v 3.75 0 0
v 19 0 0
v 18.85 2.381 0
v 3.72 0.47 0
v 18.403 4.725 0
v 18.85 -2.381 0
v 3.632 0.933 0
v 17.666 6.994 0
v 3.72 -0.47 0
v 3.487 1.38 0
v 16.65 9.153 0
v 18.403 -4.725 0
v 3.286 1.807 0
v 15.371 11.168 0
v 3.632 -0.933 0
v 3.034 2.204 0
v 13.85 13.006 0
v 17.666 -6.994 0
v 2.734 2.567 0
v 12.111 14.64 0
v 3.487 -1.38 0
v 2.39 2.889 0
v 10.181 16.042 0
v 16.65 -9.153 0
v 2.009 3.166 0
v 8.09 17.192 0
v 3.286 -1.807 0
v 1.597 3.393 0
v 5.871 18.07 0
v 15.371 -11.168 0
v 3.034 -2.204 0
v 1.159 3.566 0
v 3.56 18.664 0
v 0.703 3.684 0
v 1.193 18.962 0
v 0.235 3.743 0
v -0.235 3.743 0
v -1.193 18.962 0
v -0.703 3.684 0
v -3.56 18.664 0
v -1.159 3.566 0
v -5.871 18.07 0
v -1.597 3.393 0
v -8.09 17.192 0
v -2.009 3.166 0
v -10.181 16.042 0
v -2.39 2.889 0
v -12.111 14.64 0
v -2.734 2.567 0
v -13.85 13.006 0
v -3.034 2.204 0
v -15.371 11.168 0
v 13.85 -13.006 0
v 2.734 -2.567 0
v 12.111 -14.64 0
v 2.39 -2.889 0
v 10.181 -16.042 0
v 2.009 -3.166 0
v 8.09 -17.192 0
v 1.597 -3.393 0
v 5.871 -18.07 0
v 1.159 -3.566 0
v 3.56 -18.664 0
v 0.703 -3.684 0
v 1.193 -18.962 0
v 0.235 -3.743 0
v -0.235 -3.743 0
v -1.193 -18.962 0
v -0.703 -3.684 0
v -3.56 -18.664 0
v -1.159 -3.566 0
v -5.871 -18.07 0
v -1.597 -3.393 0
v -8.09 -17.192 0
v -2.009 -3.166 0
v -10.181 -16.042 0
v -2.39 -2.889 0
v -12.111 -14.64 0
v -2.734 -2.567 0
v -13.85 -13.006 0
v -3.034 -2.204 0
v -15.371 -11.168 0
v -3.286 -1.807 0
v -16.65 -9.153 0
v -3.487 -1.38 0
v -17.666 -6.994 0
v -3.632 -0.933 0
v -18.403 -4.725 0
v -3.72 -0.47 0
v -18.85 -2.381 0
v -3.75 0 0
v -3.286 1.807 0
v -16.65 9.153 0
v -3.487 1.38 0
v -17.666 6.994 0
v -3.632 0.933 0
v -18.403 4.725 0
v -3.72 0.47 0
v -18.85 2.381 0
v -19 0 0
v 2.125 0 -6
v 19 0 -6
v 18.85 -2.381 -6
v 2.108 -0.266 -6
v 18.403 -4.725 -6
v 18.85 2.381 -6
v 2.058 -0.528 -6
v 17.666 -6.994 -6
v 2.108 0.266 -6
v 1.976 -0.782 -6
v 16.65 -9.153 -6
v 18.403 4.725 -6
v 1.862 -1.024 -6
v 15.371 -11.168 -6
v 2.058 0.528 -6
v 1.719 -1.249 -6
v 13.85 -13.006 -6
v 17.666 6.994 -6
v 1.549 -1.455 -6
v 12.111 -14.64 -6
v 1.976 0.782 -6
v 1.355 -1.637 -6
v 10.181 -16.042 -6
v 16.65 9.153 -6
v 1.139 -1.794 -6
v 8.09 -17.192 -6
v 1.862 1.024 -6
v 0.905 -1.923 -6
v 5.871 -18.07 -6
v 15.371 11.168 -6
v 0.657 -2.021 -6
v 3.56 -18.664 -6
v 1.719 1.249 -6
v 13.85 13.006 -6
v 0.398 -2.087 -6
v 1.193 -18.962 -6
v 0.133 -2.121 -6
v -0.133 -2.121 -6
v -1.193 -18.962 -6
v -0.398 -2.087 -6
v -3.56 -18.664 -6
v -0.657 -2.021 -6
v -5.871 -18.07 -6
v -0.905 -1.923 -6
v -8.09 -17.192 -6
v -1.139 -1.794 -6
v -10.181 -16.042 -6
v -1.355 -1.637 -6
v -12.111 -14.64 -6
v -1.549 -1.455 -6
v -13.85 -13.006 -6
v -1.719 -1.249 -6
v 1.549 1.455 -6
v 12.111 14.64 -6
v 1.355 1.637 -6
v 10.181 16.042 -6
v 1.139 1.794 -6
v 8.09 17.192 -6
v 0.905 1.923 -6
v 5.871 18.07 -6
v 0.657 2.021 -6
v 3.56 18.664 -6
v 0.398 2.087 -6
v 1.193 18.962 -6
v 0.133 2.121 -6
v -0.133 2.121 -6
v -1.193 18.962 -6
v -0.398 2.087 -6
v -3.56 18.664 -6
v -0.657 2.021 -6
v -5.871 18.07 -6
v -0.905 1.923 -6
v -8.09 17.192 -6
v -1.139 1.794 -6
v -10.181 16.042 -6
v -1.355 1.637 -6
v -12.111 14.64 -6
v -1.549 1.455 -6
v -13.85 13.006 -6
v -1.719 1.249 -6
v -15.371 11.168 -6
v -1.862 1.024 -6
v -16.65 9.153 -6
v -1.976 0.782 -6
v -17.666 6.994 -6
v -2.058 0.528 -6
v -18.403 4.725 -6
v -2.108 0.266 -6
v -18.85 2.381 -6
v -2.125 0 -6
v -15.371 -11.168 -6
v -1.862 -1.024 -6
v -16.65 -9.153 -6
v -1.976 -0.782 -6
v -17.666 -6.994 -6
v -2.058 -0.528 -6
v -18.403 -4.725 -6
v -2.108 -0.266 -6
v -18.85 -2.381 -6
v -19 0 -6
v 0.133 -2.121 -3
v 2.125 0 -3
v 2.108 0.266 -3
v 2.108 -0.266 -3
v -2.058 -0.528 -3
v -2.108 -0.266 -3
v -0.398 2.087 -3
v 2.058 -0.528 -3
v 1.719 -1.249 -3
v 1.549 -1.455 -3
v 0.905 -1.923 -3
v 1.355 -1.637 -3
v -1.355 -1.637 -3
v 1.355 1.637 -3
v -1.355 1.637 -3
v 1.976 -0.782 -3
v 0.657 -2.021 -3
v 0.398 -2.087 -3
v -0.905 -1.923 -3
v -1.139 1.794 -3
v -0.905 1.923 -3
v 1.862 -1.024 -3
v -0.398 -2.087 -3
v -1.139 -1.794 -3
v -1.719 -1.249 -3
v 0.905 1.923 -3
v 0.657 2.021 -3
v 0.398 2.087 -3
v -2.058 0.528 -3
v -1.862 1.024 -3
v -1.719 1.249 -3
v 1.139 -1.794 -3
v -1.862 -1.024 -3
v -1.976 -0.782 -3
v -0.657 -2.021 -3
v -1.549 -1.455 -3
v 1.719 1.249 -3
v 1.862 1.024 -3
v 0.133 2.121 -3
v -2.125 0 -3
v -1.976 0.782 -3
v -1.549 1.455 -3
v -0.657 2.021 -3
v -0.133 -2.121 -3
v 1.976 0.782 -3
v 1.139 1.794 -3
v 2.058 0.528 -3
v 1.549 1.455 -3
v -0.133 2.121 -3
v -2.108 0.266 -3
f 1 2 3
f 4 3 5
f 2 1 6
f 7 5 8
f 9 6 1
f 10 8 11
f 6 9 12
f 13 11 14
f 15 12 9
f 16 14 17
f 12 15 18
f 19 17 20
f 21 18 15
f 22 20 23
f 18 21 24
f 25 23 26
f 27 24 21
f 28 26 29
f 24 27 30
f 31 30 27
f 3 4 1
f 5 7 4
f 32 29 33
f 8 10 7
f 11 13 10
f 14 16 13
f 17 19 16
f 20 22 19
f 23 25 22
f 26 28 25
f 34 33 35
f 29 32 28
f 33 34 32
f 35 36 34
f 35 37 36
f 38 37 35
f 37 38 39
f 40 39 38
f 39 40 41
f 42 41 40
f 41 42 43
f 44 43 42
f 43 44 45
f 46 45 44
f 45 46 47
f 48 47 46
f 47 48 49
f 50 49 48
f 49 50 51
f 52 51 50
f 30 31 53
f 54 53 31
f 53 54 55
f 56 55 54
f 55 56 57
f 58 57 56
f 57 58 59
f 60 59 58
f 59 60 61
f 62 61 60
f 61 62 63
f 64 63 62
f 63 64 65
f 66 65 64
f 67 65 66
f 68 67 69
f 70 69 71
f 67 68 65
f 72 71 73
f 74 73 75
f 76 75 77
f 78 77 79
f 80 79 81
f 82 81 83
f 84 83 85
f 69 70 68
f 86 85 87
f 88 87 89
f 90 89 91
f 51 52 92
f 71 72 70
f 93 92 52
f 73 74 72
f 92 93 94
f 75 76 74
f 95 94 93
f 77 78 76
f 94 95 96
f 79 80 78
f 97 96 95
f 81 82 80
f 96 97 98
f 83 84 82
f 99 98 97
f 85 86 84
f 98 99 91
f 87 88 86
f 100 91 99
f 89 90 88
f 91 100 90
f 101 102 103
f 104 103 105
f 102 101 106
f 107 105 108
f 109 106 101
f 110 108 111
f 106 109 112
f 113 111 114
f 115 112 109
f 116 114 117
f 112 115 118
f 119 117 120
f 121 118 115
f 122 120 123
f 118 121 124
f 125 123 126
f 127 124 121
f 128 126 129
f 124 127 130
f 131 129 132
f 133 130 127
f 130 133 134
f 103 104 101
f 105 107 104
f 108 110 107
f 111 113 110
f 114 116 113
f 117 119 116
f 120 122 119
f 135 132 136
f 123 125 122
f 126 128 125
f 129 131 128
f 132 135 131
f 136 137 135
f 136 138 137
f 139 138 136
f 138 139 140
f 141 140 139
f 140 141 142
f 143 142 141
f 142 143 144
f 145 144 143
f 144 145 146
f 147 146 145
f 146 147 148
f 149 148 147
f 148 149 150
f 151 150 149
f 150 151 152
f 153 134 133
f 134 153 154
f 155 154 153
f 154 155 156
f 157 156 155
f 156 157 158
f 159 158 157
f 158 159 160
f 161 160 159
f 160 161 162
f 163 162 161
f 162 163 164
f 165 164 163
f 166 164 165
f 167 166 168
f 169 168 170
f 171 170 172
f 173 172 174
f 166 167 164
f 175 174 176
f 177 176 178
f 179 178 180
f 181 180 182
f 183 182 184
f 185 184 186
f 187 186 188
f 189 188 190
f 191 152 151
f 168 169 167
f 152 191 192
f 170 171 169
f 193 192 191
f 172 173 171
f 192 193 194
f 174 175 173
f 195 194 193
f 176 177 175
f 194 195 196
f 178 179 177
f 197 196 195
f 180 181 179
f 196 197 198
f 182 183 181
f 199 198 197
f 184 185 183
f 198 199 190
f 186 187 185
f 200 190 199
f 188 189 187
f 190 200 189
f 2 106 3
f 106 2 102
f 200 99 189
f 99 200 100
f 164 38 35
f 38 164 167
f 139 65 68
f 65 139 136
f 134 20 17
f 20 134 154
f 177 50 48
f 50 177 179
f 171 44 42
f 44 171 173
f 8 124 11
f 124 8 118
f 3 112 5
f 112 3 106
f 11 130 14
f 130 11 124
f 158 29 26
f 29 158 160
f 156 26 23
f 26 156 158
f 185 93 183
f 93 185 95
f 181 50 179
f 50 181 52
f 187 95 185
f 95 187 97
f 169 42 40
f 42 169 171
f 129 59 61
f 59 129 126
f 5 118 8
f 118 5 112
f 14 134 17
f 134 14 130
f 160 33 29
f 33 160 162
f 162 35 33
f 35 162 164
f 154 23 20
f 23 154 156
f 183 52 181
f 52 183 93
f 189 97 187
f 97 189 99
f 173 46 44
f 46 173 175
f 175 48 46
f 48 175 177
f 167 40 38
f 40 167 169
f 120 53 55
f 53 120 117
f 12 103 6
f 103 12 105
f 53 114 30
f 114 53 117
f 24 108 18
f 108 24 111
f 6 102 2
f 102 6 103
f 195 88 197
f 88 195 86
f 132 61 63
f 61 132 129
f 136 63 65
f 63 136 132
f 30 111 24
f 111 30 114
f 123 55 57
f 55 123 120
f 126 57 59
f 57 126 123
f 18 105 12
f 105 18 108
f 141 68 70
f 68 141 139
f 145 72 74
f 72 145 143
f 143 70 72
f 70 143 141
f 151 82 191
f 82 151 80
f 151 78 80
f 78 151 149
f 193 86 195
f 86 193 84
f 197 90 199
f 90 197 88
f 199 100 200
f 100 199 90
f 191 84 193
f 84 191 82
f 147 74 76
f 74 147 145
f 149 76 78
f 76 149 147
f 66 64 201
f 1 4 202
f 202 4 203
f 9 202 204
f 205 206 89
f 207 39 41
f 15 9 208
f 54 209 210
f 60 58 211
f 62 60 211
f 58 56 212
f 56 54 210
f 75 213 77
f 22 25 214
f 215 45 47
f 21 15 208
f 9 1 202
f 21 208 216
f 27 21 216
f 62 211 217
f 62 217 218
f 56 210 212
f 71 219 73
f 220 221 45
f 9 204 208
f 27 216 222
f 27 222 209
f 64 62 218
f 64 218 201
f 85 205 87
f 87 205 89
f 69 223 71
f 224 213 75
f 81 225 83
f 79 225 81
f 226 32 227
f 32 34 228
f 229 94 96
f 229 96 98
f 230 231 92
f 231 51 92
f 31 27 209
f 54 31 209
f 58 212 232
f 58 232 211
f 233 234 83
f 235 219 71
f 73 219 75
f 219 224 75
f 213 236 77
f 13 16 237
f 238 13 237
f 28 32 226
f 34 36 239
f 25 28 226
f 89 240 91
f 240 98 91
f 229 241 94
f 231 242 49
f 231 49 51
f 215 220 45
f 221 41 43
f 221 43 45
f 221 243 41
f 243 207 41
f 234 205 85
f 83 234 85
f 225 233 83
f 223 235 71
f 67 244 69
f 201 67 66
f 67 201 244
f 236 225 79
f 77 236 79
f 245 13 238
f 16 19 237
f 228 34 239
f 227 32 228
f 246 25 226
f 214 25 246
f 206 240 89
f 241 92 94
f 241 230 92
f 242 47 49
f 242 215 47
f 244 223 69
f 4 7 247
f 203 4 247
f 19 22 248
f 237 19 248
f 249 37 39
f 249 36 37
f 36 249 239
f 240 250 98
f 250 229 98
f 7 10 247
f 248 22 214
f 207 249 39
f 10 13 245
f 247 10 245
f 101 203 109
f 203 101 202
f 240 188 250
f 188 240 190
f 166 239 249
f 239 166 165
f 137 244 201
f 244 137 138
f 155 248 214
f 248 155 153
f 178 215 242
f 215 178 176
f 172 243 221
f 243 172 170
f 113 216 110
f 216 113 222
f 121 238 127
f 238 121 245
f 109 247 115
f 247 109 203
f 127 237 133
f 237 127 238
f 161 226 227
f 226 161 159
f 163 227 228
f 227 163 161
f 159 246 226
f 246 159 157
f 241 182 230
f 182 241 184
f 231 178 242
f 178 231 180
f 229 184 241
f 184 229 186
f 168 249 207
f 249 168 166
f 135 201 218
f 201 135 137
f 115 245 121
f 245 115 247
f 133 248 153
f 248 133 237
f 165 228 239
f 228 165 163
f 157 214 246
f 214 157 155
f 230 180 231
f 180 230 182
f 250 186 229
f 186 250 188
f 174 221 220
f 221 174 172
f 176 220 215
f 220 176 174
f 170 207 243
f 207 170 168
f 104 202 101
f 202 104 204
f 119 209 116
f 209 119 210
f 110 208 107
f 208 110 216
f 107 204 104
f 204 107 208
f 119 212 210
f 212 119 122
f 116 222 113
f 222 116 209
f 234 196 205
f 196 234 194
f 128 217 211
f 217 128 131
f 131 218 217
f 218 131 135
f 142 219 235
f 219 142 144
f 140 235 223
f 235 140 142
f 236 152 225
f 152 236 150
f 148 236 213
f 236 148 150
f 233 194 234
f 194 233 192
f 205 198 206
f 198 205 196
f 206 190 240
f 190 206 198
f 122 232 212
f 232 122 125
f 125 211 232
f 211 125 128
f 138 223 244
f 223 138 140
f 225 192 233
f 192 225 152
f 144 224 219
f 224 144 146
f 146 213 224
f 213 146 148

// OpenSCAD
$fn = 50;


difference() {
	union() {
		translate(v = [0, 0, -6.0000000000]) {
			cylinder(h = 6, r = 10.0000000000);
		}
		translate(v = [0, 0, -6.0000000000]) {
			cylinder(h = 6, r = 19.0000000000);
		}
	}
	union() {
		translate(v = [0, 0, 0]) {
			rotate(a = [0, 0, 0]) {
				difference() {
					union() {
						#translate(v = [0, 0, -6.0000000000]) {
							cylinder(h = 6, r = 2.0000000000);
						}
						#translate(v = [0, 0, -3]) {
							cylinder(h = 3, r1 = 2.1250000000, r2 = 3.7500000000);
						}
						#translate(v = [0, 0, -6.0000000000]) {
							cylinder(h = 6, r = 2.1250000000);
						}
						#translate(v = [0, 0, -6.0000000000]) {
							cylinder(h = 6, r = 2.0000000000);
						}
					}
					union();
				}
			}
		}
	}
}
